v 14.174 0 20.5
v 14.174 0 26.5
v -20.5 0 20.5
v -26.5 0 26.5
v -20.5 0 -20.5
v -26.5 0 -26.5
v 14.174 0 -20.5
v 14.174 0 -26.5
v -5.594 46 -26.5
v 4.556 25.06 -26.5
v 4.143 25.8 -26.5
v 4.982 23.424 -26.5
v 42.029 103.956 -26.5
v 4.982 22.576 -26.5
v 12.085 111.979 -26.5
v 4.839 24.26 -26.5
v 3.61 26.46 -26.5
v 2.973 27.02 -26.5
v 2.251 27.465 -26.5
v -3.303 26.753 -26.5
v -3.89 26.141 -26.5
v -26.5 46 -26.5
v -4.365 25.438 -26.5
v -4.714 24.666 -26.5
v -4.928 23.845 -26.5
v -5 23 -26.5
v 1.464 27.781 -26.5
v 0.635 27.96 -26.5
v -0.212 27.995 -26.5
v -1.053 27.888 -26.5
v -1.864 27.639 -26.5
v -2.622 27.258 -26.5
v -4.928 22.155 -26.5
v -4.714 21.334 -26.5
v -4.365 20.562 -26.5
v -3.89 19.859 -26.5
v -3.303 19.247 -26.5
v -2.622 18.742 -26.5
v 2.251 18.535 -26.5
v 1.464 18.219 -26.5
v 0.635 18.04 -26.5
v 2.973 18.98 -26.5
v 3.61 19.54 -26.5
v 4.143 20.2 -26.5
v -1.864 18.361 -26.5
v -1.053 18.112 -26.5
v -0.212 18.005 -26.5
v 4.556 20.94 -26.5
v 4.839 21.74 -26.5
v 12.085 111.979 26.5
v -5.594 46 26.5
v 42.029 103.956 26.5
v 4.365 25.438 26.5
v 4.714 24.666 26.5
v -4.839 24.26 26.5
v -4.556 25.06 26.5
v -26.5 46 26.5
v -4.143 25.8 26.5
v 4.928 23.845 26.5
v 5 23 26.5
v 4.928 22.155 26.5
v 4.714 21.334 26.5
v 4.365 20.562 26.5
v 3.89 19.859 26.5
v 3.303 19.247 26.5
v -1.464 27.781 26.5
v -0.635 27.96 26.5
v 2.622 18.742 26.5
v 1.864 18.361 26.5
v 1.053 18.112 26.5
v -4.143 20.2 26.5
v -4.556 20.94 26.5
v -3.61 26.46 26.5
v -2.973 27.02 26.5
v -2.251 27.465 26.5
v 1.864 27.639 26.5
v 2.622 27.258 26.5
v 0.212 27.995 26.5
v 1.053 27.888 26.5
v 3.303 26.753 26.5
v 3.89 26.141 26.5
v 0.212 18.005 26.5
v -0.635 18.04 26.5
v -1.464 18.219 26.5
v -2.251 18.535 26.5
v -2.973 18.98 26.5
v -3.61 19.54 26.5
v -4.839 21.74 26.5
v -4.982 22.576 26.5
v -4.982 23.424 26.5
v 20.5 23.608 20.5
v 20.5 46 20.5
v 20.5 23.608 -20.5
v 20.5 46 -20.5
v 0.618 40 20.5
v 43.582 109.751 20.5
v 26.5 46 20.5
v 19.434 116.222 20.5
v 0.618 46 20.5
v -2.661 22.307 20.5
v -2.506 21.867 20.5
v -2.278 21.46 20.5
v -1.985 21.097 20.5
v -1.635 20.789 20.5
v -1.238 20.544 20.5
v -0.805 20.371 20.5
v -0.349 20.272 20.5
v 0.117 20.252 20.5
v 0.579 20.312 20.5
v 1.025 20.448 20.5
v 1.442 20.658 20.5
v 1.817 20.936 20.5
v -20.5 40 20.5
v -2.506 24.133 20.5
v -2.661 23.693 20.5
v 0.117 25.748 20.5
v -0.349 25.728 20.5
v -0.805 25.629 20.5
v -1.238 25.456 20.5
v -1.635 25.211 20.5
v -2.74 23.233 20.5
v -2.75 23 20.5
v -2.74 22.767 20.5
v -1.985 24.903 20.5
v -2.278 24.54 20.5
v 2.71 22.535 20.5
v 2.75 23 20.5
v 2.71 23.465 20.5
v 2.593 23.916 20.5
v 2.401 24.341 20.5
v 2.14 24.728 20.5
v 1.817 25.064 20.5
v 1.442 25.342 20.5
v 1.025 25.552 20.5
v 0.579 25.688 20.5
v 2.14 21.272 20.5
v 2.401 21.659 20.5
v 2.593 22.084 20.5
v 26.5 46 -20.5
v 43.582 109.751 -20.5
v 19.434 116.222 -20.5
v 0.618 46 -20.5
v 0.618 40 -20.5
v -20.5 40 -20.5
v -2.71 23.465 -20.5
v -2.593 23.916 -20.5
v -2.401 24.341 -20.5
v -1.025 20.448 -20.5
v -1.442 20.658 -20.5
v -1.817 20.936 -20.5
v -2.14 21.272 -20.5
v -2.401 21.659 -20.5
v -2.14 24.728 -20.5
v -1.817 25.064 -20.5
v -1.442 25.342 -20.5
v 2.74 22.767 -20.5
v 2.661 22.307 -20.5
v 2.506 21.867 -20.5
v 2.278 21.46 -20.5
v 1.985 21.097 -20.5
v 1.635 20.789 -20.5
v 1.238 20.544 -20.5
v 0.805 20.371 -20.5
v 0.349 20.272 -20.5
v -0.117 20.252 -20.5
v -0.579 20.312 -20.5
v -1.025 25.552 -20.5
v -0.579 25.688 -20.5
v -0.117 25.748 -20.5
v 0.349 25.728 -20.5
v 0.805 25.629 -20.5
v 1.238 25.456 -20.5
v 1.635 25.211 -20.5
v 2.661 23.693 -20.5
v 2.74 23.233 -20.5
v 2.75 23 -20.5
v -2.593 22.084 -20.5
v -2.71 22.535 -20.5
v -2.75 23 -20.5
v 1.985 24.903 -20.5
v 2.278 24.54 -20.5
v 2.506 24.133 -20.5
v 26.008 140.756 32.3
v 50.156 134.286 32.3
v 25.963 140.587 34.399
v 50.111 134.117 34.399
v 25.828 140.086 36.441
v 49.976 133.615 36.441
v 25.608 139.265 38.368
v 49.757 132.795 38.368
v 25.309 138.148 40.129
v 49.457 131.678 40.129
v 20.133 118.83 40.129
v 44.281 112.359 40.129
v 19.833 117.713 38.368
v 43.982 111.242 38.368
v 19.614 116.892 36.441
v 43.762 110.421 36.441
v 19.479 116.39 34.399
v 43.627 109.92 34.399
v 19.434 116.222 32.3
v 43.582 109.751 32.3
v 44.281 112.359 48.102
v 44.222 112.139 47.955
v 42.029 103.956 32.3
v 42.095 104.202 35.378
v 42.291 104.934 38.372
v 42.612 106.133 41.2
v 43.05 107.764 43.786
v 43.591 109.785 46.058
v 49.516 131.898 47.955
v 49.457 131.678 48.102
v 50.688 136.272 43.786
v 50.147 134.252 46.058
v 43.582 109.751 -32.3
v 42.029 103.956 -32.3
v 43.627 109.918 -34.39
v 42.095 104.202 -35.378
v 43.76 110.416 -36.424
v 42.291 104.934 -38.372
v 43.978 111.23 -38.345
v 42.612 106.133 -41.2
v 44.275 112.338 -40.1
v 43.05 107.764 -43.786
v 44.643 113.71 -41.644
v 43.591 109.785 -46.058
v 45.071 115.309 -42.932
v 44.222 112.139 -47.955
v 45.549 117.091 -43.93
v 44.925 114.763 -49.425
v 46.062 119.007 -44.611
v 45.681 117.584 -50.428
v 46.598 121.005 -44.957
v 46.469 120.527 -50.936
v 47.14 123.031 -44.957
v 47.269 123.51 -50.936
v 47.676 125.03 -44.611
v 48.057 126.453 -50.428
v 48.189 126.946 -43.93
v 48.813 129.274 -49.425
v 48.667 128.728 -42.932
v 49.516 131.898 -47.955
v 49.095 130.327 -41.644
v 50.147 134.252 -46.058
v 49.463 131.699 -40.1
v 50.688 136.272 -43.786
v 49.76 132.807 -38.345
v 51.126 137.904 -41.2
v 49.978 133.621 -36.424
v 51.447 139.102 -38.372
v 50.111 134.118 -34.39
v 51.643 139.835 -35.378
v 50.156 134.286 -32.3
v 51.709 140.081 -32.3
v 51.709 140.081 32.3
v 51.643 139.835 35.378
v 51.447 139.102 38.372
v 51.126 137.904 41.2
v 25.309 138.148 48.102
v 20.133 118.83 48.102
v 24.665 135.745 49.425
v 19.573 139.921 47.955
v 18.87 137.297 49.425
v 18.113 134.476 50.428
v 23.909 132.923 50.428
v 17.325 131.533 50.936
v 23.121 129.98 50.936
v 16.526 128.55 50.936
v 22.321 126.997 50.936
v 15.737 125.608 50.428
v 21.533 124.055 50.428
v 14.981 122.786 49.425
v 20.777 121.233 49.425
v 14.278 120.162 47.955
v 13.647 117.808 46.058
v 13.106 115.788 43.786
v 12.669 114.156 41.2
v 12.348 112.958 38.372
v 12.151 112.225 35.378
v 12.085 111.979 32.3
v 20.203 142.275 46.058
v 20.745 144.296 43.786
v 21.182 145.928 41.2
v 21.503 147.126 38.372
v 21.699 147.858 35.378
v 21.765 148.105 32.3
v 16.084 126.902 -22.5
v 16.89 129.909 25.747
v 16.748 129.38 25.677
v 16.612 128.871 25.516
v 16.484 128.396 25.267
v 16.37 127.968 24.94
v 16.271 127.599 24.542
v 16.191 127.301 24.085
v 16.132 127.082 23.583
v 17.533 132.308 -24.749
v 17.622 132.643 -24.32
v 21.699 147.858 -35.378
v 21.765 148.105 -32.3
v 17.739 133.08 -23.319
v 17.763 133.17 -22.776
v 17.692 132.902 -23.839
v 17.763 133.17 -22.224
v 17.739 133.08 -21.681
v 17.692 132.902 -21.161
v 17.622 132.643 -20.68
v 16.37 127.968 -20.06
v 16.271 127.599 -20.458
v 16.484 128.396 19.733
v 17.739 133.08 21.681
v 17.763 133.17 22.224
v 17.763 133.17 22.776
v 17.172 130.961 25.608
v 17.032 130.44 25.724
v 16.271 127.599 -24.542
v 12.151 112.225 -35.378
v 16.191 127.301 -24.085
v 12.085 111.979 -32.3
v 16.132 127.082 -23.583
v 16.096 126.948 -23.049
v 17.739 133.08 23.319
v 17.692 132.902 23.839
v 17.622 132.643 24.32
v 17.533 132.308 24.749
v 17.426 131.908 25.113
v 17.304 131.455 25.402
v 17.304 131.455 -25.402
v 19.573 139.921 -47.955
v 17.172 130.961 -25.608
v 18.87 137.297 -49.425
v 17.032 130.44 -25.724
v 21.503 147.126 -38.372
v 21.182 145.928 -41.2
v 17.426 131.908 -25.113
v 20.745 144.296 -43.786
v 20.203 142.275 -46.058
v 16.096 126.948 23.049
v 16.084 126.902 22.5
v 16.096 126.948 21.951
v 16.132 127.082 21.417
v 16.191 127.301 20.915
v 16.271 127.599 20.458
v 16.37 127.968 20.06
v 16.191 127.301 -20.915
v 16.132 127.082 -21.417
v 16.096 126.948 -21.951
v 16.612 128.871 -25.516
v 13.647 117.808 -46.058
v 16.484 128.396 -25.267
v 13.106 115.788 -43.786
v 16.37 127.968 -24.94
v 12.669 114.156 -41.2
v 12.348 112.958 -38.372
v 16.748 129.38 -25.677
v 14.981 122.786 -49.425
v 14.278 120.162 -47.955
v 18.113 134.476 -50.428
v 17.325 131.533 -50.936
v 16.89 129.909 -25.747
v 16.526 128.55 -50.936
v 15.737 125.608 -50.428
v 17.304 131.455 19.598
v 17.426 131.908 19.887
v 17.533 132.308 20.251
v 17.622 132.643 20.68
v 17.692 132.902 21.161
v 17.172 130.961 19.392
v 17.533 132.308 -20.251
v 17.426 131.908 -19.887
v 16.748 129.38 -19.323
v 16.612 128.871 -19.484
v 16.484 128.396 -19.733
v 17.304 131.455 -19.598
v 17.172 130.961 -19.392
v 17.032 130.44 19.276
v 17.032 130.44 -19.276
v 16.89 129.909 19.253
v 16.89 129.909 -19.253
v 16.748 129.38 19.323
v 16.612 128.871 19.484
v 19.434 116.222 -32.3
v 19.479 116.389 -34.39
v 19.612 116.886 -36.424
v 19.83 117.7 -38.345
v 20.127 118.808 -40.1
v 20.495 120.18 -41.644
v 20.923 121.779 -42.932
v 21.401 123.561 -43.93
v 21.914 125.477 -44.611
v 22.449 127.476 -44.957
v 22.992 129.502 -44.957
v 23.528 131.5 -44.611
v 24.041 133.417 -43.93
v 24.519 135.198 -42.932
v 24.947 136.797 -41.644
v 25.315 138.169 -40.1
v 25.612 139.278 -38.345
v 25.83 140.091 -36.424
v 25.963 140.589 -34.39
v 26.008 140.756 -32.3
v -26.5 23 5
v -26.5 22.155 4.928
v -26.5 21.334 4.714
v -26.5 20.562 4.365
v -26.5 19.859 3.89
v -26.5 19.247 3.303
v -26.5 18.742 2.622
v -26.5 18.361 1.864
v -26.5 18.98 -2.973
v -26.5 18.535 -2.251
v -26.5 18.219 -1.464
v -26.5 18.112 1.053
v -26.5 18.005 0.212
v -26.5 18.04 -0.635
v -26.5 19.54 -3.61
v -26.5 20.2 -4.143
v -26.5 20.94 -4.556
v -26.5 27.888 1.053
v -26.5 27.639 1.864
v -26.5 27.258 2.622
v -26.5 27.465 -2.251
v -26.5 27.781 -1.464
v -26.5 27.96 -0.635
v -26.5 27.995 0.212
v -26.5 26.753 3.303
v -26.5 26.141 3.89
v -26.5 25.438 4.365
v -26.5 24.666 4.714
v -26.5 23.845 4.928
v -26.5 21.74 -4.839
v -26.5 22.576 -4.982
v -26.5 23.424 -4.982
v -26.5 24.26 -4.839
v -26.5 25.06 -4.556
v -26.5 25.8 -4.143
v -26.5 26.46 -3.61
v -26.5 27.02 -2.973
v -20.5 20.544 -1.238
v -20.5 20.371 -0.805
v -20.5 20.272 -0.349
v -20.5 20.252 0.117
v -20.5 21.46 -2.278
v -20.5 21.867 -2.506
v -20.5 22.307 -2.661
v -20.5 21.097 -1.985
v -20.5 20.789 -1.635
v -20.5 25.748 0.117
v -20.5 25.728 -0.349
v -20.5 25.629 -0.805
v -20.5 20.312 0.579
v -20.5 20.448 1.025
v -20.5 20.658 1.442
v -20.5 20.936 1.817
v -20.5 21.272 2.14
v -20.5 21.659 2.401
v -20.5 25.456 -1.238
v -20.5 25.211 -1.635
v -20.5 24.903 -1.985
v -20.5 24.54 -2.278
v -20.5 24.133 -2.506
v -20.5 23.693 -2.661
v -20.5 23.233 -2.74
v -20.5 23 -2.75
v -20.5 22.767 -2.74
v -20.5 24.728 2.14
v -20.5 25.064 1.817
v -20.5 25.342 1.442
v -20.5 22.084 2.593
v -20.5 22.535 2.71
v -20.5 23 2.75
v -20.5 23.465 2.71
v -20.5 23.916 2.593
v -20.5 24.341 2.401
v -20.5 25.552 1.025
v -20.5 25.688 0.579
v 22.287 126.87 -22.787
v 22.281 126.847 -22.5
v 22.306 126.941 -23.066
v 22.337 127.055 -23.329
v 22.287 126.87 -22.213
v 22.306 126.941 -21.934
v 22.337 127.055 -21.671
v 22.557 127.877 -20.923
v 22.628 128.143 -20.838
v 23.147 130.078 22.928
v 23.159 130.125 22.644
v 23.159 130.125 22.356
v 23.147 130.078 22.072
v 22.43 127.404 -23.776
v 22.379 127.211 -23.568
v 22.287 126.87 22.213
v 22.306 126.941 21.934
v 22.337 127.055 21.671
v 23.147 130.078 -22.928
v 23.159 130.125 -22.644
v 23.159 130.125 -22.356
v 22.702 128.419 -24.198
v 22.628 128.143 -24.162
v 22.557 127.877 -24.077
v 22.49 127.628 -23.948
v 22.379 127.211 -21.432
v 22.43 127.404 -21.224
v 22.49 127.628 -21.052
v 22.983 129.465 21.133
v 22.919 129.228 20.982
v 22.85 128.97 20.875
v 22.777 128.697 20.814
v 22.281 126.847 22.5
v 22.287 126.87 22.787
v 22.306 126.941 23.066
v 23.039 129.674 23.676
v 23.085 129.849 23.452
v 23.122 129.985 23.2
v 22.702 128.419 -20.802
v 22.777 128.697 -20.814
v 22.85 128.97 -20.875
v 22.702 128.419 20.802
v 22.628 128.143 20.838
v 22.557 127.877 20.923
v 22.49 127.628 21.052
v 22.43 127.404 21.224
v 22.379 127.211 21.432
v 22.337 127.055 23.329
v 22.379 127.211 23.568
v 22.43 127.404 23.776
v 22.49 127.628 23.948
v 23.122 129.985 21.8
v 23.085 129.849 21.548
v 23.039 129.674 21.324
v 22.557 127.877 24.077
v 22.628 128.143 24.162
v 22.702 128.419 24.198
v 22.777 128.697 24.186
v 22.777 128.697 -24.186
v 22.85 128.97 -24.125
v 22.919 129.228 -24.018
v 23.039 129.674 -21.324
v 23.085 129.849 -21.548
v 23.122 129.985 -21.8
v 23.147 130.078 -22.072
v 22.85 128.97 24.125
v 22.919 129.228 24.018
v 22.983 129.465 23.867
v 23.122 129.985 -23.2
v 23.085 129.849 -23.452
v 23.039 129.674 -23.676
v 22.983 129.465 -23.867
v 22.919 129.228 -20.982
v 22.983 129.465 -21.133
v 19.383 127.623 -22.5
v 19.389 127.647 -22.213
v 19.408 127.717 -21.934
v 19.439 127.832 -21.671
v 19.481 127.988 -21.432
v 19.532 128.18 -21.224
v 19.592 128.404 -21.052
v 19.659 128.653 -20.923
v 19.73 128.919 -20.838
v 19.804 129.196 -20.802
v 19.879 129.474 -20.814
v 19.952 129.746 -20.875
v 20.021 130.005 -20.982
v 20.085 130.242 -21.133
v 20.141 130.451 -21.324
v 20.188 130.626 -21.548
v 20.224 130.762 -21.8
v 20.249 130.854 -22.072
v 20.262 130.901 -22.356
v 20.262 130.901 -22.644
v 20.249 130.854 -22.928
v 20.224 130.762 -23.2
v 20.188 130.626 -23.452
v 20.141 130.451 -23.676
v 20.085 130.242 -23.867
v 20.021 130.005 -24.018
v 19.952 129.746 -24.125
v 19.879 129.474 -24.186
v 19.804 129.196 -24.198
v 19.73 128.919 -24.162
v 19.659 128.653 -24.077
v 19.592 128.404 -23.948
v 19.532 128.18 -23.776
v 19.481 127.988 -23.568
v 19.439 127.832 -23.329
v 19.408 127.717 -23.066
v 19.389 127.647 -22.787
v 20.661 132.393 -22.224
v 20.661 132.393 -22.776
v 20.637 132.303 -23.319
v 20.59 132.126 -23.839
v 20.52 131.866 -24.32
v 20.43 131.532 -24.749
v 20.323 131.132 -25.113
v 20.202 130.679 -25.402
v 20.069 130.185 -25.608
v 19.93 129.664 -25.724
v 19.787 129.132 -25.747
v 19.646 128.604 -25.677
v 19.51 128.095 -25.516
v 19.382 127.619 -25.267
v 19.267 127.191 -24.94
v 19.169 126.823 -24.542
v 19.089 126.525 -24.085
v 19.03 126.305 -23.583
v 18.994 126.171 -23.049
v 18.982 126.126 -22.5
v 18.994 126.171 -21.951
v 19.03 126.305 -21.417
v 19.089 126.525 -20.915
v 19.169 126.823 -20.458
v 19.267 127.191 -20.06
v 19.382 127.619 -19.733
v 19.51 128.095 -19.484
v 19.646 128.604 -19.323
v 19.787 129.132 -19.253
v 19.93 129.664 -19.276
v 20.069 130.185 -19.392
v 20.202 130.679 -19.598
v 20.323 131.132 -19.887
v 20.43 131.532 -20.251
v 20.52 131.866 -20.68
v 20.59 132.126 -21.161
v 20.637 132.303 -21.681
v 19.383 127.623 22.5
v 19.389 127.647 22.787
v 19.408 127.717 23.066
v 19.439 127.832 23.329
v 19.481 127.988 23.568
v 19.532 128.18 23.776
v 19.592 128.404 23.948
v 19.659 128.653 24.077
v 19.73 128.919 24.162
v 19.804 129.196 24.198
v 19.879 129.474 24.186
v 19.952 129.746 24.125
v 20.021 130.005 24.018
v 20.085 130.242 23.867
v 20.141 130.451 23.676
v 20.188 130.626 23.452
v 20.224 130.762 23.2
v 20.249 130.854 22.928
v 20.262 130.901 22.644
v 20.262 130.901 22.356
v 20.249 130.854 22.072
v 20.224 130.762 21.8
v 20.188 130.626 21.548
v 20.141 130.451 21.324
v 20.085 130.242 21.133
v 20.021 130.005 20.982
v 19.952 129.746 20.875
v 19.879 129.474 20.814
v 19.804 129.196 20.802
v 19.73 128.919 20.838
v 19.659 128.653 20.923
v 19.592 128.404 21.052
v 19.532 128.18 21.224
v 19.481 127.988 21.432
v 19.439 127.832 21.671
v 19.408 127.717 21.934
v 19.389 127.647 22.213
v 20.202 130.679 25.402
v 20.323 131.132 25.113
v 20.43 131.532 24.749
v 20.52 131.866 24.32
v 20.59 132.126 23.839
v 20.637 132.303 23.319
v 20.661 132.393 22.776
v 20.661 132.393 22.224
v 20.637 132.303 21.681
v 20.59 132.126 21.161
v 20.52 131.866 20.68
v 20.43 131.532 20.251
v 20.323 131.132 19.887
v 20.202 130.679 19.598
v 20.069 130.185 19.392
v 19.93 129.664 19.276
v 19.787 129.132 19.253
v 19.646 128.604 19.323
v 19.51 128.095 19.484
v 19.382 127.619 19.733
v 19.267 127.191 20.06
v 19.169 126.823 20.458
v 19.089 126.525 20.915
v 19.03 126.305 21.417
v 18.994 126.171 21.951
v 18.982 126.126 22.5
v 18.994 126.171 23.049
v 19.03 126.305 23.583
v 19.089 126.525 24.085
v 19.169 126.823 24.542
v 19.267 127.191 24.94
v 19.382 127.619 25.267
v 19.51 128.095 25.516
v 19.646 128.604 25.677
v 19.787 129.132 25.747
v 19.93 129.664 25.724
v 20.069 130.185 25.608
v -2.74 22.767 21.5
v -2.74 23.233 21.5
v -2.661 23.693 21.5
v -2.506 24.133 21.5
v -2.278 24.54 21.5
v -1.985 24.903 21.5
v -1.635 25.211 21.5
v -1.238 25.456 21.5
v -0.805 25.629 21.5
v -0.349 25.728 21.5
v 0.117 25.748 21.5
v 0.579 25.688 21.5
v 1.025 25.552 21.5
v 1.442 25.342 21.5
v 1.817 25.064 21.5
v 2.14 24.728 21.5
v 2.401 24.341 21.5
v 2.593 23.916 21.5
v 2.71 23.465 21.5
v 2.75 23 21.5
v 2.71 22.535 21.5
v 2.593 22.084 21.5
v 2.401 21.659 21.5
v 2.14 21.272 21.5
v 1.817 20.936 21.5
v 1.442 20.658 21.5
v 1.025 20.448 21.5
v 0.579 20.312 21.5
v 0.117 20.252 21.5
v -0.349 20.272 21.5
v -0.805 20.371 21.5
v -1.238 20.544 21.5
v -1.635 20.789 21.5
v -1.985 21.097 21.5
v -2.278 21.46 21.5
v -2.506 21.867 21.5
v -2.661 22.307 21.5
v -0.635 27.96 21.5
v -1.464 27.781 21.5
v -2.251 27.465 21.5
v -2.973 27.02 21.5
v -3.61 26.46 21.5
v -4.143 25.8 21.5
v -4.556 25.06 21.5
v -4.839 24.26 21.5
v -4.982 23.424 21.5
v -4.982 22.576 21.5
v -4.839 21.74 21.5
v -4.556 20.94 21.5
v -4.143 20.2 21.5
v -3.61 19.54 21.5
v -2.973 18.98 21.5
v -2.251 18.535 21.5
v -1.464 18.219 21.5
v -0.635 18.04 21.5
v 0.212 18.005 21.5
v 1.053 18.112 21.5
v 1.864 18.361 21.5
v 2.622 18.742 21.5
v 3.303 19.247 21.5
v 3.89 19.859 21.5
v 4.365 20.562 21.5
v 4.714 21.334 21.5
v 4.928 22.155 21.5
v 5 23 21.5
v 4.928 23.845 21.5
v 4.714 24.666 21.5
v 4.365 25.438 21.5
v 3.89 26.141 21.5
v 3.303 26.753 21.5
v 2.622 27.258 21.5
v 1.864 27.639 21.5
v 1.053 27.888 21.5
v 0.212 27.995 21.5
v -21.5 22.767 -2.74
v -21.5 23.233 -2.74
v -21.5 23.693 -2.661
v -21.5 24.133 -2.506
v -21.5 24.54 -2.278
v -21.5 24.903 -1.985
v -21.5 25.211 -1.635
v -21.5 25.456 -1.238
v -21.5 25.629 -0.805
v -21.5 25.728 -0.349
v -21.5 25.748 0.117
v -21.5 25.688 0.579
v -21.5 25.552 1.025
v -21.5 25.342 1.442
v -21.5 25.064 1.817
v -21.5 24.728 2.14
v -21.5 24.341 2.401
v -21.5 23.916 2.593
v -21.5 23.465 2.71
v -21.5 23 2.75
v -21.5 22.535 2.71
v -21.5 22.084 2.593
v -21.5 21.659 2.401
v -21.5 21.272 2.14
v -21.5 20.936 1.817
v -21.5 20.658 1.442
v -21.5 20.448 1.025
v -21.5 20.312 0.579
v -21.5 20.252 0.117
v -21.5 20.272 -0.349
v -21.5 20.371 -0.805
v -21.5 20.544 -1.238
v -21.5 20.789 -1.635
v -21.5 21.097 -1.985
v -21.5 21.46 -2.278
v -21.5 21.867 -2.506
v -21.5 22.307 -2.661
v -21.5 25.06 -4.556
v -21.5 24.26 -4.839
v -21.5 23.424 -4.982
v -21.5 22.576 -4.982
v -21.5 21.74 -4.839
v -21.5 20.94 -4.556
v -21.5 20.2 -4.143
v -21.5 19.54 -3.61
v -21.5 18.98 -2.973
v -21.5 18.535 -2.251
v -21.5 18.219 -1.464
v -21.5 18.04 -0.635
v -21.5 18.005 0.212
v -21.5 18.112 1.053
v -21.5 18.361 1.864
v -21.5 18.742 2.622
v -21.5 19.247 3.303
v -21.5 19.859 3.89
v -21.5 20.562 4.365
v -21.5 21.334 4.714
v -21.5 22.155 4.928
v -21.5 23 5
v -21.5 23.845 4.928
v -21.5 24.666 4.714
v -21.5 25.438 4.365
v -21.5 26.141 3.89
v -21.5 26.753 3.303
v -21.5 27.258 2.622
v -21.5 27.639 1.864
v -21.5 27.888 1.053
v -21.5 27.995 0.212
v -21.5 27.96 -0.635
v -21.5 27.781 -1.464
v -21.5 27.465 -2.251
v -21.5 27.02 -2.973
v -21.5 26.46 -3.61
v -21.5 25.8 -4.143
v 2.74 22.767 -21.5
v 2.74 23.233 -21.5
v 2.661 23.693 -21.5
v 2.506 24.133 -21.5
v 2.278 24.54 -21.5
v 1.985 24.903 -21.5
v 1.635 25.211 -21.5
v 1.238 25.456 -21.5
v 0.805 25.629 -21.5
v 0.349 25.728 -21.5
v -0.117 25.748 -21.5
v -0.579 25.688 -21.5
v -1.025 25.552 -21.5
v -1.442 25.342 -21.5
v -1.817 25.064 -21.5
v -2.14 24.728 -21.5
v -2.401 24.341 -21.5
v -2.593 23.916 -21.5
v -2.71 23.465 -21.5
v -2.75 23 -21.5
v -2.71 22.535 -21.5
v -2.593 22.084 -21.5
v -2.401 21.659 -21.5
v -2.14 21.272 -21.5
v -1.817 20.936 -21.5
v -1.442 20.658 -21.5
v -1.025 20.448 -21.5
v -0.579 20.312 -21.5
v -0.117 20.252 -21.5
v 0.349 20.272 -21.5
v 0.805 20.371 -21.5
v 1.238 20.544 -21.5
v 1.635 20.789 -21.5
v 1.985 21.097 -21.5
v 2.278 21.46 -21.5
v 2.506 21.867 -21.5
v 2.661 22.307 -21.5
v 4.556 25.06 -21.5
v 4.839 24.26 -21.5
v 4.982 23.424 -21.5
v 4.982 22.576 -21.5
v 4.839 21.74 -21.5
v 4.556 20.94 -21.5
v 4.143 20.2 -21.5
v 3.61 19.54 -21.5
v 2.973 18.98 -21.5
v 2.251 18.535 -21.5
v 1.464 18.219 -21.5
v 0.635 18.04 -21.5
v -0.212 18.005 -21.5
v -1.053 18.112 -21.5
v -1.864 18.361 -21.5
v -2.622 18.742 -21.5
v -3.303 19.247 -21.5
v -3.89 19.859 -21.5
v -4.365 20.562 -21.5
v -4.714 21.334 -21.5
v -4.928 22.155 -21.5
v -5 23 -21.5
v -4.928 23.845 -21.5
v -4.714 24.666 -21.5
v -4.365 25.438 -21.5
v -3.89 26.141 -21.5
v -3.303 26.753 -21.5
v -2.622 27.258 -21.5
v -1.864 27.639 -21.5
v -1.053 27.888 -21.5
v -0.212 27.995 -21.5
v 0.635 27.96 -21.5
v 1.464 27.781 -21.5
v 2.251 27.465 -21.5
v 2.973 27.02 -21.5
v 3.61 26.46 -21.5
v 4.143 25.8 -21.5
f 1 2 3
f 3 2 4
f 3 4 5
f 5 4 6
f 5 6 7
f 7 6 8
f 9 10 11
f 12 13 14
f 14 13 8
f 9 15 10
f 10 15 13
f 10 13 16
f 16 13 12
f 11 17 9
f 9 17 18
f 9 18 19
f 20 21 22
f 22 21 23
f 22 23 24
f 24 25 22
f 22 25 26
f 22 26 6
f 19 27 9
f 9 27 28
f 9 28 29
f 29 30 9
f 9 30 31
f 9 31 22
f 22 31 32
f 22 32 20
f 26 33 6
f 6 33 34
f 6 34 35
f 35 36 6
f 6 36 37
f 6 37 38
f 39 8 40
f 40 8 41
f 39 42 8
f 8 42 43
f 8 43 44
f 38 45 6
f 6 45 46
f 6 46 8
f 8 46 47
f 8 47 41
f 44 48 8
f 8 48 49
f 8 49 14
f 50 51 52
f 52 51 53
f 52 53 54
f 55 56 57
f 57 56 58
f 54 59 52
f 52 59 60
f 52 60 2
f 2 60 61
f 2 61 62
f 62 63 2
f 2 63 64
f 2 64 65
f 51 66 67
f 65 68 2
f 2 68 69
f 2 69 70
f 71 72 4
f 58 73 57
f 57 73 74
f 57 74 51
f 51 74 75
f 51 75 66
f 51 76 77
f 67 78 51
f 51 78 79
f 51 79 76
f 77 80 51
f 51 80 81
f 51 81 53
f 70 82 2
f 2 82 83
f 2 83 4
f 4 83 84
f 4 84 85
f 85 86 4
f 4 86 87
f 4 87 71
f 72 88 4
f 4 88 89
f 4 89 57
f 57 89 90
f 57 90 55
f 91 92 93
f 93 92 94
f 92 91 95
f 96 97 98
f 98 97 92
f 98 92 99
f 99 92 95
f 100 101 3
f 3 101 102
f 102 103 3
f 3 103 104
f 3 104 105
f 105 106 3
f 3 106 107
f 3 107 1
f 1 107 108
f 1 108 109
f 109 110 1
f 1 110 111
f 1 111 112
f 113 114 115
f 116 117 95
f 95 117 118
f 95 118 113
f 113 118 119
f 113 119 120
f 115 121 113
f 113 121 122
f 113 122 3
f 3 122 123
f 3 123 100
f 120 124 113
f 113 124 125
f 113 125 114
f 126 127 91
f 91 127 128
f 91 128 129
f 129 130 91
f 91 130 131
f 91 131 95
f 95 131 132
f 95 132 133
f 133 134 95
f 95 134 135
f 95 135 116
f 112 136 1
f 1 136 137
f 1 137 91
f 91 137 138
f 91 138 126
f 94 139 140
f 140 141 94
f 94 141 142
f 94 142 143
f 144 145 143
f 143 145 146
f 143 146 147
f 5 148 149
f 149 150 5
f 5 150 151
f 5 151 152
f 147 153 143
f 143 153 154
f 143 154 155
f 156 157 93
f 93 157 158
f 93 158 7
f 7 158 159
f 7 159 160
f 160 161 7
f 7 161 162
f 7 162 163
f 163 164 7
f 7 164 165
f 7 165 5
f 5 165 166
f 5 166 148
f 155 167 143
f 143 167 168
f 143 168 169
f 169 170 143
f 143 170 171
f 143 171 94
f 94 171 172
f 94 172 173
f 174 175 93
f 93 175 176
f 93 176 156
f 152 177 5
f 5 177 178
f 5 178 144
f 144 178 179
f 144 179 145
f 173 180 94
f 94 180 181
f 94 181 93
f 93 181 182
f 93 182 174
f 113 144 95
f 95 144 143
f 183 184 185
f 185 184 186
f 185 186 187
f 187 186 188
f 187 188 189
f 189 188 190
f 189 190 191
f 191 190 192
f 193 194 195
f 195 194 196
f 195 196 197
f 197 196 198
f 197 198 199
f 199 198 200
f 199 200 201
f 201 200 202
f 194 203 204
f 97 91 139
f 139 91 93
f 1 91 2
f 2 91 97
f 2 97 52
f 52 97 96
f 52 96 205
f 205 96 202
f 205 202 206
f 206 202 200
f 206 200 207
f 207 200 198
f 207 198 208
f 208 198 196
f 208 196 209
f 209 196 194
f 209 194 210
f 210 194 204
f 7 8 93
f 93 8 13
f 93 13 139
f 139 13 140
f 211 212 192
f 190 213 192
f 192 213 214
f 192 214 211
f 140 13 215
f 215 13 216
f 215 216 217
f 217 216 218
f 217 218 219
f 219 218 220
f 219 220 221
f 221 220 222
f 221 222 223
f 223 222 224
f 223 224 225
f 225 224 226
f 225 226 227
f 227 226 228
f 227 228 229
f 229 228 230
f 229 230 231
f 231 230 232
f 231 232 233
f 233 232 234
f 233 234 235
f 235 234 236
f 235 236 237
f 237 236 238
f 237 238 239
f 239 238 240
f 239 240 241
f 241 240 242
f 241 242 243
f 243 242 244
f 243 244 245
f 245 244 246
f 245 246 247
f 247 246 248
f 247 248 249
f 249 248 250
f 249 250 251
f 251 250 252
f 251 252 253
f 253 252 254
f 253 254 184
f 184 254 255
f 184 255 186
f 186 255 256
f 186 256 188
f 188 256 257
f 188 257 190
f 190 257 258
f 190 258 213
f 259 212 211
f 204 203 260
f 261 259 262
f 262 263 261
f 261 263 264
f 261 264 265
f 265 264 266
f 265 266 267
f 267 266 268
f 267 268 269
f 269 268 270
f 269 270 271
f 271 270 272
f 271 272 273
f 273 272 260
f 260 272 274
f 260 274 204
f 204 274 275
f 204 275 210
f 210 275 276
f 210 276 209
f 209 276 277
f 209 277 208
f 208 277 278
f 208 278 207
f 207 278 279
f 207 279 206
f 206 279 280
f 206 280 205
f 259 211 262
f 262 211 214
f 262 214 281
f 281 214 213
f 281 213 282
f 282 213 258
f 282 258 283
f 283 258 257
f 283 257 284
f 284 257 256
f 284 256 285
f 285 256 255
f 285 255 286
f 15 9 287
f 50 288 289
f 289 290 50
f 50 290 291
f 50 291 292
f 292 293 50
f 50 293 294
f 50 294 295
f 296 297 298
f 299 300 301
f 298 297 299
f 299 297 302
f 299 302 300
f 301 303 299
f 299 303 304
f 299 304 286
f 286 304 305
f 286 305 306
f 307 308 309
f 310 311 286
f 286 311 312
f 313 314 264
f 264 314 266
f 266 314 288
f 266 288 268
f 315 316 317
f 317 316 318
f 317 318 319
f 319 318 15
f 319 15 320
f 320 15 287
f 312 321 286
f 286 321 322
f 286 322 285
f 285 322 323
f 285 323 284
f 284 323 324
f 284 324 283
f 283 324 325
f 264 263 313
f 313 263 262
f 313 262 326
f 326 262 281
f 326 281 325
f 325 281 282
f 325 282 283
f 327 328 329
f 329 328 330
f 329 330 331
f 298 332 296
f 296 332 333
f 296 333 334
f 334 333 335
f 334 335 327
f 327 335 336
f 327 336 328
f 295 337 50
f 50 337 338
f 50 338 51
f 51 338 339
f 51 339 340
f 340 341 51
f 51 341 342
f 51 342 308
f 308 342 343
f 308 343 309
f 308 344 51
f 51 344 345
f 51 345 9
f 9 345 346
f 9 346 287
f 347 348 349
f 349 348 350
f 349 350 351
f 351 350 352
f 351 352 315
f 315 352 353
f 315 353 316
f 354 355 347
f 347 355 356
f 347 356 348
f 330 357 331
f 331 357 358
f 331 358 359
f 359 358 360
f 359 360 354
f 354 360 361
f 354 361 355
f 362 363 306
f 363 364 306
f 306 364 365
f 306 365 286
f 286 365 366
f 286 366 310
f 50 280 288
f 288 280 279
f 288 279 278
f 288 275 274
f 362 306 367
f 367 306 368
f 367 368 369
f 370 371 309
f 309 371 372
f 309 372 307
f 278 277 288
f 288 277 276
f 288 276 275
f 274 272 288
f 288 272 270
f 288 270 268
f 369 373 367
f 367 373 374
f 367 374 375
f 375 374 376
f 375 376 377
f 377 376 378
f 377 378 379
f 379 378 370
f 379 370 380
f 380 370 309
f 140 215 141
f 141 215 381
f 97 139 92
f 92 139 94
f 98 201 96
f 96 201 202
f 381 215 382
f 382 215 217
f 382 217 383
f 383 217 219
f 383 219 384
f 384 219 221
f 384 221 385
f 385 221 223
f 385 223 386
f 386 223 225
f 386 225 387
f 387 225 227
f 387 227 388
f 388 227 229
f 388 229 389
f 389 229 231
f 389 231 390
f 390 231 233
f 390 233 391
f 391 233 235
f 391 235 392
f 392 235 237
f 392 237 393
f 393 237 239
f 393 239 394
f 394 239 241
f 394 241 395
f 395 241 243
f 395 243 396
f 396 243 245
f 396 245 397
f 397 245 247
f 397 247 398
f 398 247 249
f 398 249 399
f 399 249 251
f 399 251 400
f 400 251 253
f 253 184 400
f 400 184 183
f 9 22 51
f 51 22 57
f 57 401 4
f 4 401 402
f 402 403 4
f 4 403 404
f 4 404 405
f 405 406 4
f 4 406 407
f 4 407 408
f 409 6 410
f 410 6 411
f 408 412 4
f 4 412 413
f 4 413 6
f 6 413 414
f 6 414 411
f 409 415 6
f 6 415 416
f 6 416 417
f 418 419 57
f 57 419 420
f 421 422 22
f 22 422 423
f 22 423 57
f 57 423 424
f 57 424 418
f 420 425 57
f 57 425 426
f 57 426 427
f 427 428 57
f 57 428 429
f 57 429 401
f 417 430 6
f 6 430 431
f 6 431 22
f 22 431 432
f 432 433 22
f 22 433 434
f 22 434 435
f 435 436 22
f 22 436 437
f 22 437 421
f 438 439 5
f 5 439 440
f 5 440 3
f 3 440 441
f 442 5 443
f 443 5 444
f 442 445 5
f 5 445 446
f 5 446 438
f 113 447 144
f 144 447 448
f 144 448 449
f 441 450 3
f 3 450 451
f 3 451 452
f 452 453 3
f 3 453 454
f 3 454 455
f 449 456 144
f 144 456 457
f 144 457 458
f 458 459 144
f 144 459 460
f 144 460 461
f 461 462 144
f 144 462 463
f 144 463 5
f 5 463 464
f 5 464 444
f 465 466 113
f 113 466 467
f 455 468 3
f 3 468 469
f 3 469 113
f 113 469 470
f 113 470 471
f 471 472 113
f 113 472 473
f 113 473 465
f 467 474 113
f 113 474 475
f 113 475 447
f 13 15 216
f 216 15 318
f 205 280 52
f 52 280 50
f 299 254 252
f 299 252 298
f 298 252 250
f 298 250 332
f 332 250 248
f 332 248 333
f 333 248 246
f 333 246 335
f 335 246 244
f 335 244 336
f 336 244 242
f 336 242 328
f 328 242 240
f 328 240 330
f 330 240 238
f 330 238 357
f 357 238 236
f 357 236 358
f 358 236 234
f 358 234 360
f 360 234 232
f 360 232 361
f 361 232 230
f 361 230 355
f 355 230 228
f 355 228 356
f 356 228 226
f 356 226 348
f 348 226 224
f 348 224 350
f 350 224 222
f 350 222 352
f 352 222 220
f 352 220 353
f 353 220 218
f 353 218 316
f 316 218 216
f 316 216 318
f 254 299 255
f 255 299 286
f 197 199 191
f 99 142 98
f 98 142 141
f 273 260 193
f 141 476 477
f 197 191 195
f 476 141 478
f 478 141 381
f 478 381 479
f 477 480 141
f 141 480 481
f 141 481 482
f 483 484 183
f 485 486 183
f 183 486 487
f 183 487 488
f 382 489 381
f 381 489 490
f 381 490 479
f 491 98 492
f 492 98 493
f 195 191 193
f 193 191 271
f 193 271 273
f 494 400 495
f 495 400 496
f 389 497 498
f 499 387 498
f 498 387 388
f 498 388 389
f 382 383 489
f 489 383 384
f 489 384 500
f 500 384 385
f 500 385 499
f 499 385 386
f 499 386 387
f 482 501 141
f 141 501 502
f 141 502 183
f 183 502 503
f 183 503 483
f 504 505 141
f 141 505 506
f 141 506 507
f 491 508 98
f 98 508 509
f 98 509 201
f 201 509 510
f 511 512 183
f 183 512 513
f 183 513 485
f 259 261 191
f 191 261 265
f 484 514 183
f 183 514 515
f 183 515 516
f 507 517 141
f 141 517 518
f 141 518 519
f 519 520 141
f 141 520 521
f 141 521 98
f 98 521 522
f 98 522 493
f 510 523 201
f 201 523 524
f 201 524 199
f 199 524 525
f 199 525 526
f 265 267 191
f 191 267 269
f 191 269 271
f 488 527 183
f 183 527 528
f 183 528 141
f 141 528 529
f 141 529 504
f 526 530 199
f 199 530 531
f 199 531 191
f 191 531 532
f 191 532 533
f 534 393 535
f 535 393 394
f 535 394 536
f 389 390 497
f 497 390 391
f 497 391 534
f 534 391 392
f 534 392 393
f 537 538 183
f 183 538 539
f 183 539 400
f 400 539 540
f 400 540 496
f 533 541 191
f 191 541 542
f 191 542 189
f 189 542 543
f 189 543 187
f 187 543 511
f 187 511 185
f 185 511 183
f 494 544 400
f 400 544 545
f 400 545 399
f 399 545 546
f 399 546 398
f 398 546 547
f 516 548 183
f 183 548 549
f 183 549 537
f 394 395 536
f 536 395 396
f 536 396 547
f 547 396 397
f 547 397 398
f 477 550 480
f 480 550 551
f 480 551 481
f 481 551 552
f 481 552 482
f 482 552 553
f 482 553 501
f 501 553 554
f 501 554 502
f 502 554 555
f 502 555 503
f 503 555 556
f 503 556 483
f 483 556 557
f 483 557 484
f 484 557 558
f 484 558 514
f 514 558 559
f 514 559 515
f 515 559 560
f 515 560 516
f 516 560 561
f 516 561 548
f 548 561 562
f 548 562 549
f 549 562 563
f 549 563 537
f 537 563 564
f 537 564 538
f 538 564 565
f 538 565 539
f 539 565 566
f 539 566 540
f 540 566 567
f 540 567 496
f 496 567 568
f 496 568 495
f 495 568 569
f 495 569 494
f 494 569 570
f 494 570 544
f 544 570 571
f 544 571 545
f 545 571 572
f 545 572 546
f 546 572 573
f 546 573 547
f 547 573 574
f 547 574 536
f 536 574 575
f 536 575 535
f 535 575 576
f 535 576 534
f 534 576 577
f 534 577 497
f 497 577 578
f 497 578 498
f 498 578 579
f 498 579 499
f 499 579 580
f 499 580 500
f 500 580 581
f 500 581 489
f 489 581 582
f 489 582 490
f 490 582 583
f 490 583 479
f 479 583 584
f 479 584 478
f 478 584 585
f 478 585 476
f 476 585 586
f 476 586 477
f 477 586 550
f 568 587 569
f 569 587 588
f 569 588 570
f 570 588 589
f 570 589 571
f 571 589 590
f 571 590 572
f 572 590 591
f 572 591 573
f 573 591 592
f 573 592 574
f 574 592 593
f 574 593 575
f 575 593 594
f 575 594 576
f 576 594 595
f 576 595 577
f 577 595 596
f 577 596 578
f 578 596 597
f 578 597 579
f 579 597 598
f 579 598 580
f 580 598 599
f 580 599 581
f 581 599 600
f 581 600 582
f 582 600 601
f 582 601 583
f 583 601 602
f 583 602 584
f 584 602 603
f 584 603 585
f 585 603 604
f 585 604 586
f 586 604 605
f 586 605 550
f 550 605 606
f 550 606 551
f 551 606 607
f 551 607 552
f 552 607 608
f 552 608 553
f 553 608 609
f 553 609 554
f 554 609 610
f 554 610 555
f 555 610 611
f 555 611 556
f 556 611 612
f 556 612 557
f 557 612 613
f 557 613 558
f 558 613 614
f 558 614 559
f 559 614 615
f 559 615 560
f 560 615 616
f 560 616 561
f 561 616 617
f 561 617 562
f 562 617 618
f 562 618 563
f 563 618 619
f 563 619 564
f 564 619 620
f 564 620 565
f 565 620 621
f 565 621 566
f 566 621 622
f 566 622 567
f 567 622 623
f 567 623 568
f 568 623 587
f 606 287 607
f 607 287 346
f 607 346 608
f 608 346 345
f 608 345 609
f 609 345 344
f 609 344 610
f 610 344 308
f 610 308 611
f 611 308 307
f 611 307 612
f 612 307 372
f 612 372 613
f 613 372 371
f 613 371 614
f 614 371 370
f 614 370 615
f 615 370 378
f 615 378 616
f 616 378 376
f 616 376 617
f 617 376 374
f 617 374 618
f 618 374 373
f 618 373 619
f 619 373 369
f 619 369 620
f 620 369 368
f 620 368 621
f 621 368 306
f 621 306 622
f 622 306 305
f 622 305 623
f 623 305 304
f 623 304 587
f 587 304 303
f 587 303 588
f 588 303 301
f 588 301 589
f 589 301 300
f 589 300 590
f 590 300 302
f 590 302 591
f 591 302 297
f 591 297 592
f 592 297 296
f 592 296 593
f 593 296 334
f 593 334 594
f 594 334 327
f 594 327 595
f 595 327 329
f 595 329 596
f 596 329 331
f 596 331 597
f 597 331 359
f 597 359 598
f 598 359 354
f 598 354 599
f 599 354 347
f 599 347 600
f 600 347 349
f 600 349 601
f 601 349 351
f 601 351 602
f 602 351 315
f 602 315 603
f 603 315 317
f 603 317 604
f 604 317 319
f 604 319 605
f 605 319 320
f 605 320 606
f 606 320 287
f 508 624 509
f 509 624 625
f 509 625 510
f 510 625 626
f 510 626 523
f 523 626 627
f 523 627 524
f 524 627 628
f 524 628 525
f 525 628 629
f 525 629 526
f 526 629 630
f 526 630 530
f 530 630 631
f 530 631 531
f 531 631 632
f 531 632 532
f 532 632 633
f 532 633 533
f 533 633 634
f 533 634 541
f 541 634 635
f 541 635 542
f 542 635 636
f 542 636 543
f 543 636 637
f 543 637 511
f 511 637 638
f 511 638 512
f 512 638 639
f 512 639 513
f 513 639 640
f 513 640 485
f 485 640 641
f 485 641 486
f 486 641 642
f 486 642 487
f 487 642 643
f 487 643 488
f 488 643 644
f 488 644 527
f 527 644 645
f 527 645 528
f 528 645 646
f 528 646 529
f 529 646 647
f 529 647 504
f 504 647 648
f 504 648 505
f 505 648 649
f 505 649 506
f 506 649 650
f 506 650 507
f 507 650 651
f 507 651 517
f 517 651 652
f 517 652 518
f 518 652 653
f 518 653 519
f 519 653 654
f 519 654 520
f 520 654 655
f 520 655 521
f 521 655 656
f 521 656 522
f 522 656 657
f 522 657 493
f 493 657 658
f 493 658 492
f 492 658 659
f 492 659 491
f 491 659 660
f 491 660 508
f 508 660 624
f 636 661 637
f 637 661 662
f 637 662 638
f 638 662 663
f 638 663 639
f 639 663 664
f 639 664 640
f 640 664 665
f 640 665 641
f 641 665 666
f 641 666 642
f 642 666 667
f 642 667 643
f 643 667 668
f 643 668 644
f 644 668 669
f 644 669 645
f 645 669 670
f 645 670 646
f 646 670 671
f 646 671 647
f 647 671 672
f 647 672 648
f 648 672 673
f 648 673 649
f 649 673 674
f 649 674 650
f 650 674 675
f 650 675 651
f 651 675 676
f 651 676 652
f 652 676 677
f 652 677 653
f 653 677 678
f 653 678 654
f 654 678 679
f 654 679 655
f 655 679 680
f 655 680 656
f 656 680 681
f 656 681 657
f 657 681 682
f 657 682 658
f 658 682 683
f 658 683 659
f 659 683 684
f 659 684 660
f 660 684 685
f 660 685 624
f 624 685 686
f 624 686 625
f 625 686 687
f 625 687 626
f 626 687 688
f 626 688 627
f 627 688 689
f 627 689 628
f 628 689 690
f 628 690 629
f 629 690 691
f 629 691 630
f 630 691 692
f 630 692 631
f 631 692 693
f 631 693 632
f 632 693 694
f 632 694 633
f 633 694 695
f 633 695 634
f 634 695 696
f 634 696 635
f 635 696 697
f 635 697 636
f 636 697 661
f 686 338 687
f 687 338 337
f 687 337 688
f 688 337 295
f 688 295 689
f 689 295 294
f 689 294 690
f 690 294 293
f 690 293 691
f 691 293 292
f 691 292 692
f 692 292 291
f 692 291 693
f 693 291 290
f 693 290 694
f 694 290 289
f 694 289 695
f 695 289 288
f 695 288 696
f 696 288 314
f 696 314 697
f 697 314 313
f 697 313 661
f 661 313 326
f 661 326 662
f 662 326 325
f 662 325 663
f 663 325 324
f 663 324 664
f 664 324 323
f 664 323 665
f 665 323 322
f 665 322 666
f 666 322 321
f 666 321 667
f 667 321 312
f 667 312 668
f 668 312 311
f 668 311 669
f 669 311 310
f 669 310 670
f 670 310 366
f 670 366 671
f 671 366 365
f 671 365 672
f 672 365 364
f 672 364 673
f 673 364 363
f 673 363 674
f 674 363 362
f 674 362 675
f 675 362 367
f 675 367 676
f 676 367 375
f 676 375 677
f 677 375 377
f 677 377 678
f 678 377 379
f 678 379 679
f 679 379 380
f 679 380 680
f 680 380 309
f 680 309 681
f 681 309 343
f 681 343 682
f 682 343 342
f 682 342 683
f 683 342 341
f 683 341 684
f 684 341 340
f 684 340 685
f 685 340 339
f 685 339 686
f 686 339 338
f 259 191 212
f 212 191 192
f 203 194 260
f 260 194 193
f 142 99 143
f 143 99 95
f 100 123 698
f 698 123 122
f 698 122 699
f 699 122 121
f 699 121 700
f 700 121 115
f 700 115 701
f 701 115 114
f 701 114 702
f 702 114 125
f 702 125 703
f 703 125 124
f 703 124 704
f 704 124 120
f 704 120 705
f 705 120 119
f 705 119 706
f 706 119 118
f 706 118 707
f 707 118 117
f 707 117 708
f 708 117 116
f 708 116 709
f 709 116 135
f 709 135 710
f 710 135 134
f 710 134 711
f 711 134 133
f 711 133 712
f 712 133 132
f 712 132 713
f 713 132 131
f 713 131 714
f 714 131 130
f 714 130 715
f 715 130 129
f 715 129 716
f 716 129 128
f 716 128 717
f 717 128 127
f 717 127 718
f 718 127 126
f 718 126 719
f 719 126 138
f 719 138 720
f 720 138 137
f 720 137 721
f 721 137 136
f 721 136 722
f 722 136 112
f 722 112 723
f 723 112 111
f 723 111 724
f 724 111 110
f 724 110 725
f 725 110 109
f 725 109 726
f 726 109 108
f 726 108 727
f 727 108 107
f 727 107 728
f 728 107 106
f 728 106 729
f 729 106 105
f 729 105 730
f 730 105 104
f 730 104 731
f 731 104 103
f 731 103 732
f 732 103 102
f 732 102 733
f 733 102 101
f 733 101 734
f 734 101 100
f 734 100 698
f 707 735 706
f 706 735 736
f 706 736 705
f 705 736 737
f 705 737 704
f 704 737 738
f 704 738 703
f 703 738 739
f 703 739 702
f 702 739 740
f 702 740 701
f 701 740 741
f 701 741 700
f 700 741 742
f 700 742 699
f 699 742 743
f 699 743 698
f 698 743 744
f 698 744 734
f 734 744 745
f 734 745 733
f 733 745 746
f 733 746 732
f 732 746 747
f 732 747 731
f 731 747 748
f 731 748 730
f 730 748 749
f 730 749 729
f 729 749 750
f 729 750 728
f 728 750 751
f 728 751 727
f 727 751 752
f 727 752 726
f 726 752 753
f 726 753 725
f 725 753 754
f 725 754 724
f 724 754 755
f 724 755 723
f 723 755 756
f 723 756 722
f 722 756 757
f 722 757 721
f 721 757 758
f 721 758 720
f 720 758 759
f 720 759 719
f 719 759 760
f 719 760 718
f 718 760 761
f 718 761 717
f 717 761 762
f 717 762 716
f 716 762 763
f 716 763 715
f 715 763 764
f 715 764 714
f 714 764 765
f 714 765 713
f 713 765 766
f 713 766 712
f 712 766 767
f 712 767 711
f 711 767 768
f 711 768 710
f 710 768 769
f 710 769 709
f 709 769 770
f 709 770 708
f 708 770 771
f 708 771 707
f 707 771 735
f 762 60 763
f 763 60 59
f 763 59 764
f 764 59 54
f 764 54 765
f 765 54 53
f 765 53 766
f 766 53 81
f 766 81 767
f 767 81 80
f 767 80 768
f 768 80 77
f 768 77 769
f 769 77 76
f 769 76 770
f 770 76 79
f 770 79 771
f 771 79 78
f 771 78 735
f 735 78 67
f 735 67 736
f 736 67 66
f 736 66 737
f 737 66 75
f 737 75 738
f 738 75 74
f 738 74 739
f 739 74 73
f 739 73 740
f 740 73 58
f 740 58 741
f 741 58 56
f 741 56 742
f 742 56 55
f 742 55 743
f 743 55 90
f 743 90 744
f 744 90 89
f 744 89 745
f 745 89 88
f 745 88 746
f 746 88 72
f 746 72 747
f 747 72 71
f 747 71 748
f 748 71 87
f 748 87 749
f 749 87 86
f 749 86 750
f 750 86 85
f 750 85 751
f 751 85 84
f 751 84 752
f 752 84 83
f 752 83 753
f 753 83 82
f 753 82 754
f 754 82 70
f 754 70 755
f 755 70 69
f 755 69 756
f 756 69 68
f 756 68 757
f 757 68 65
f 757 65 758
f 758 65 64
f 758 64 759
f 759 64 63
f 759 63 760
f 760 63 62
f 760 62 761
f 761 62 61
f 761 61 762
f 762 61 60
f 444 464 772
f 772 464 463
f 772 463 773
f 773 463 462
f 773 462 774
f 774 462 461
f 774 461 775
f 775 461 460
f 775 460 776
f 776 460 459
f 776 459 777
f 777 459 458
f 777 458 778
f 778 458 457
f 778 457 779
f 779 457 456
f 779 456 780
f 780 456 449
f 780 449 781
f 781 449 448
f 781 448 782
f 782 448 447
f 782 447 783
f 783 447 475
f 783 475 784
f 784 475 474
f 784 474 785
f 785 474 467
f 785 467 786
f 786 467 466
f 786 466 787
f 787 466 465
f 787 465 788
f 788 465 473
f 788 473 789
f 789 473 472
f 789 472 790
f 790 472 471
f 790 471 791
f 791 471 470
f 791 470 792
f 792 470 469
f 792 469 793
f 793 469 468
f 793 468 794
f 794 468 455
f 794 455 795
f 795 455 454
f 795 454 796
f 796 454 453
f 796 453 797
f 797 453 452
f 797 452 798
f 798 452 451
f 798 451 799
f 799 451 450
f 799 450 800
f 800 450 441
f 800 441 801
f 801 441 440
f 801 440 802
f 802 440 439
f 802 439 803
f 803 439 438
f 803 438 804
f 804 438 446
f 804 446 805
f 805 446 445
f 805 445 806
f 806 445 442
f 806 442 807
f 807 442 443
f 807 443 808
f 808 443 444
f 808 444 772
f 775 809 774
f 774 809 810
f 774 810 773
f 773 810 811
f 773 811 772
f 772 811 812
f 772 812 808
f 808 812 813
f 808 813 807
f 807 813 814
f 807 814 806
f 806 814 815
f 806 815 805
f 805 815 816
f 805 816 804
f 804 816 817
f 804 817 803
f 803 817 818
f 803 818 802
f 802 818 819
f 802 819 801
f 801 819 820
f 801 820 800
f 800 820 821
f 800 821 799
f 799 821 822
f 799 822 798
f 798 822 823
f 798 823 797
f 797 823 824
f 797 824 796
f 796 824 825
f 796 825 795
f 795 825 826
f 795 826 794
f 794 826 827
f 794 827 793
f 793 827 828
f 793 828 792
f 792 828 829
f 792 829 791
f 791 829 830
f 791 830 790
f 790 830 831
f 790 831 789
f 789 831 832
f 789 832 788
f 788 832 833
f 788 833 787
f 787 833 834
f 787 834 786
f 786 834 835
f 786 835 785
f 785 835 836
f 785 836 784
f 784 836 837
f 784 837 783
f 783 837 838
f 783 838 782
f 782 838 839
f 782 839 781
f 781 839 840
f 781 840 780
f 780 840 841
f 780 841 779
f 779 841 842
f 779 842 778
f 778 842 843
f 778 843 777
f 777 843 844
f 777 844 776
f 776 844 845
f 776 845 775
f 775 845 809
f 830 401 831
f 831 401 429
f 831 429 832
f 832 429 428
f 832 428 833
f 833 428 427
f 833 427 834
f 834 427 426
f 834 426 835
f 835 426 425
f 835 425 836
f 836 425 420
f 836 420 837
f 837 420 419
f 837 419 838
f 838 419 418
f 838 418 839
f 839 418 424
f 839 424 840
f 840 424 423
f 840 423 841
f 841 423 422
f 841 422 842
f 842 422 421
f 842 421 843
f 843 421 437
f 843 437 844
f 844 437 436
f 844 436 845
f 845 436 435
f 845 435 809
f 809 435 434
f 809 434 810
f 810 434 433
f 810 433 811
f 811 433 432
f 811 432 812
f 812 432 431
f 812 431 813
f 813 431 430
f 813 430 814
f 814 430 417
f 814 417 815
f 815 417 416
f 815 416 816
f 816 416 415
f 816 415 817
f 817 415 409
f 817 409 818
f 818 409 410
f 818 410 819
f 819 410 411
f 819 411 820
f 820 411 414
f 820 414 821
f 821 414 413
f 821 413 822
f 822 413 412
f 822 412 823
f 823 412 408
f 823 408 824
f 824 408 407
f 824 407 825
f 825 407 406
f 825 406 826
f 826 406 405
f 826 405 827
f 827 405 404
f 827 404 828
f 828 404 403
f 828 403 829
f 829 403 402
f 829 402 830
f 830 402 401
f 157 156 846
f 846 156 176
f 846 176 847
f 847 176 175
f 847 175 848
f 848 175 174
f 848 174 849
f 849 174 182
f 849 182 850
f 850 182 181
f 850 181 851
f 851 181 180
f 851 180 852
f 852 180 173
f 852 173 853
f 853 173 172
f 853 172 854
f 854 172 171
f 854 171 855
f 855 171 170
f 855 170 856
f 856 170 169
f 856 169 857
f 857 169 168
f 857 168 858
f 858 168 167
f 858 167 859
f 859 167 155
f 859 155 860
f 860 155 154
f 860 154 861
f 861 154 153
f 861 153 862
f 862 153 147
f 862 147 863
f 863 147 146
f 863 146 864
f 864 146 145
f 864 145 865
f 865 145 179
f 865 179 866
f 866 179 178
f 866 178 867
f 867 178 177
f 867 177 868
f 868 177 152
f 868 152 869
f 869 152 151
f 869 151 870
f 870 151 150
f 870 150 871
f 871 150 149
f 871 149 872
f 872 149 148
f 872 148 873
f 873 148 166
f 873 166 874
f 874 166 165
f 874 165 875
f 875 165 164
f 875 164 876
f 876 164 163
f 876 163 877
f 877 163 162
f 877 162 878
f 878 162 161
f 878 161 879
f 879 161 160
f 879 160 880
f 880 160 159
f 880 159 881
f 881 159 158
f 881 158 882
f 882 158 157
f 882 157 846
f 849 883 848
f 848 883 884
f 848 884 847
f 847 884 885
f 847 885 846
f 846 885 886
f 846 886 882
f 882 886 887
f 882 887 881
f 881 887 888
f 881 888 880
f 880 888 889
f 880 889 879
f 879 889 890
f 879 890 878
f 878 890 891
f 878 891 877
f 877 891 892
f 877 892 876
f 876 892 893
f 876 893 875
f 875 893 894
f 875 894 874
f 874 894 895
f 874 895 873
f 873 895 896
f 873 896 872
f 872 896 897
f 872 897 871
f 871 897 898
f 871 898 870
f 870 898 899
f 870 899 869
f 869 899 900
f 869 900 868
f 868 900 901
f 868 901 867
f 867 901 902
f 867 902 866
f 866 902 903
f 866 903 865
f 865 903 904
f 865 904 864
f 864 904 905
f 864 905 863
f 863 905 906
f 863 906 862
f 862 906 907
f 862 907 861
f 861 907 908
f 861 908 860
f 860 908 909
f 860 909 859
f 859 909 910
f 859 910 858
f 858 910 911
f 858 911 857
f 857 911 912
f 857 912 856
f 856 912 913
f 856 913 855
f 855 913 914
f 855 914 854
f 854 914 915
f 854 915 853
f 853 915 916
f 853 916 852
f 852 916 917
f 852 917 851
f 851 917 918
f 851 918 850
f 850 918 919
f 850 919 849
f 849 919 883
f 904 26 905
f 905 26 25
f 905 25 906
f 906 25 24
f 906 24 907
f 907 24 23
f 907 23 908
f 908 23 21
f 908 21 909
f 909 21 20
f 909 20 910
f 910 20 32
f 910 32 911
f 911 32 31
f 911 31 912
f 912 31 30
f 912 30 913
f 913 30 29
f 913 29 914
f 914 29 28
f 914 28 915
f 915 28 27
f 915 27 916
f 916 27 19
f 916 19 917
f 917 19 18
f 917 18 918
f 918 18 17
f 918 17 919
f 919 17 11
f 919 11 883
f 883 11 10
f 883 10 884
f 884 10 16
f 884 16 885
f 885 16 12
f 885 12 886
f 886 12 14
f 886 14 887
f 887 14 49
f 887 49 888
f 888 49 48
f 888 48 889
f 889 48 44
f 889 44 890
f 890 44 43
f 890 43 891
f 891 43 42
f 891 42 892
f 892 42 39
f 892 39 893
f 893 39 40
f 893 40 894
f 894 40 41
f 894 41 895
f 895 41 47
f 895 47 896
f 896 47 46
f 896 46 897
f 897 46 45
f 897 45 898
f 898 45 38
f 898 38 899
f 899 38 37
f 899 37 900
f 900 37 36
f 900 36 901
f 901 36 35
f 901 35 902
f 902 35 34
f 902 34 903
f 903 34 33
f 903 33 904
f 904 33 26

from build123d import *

# Parameters (mm, degrees)
SKETCH1_W                                = 53
SKETCH1_H                                = 53
SKETCH1_W_2                              = 41
SKETCH1_H_2                              = 41
BOSS_EXTRUDE1_DEPTH                      = 40
SKETCH2_W                                = 53
SKETCH2_H                                = 53
BOSS_EXTRUDE2_DEPTH                      = 6
SKETCH3_W                                = 53
SKETCH3_H                                = 80
SKETCH3_W_2                              = 41
SKETCH3_H_2                              = 68
BOSS_EXTRUDE3_DEPTH                      = 31
BOSS_EXTRUDE4_DEPTH                      = 31
BOSS_EXTRUDE5_START                      = -6
BOSS_EXTRUDE5_DEPTH                      = 6
SKETCH6_W                                = 41
SKETCH6_H                                = 12
CUT_EXTRUDE1_DEPTH                       = 25
CBORE_FOR_M3_SHCS2_D                     = 3.4
CBORE_FOR_M3_SHCS2_CBORE_D               = 6.5
CBORE_FOR_M3_SHCS2_CBORE_DEPTH           = 3
CUT_EXTRUDE2_REACH                       = 166.954
SKETCH14_W                               = 41
SKETCH14_H                               = 41
CUT_EXTRUDE3_DEPTH                       = 40
CUT_EXTRUDE4_REACH                       = 127.3
SKETCH15_W                               = 19.88190451
SKETCH15_H                               = 41
CBORE_FOR_M5_SHCS1_D                     = 5.5
CBORE_FOR_M5_SHCS1_DEPTH                 = 6
CBORE_FOR_M5_SHCS1_CBORE_D               = 10
CBORE_FOR_M5_SHCS1_CBORE_DEPTH           = 5
CBORE_FOR_M5_SHCS1_ON_FACE_2_D           = 5.5
CBORE_FOR_M5_SHCS1_ON_FACE_2_DEPTH       = 6
CBORE_FOR_M5_SHCS1_ON_FACE_2_CBORE_D     = 10
CBORE_FOR_M5_SHCS1_ON_FACE_2_CBORE_DEPTH = 5
CBORE_FOR_M5_SHCS1_ON_FACE_3_D           = 5.5
CBORE_FOR_M5_SHCS1_ON_FACE_3_DEPTH       = 6
CBORE_FOR_M5_SHCS1_ON_FACE_3_CBORE_D     = 10
CBORE_FOR_M5_SHCS1_ON_FACE_3_CBORE_DEPTH = 5
CUT_EXTRUDE5_START                       = -26.5
CUT_EXTRUDE5_DEPTH                       = 53


with BuildPart() as part:
    # Sketch1 → Boss-Extrude1 (new body)
    with BuildSketch(Plane(origin=(0, 0, 0), x_dir=(1, 0, 0), z_dir=(0, 1, 0))):
        Rectangle(SKETCH1_W, SKETCH1_H)
        Rectangle(SKETCH1_W_2, SKETCH1_H_2, mode=Mode.SUBTRACT)
    extrude(amount=BOSS_EXTRUDE1_DEPTH)

    # Sketch2 → Boss-Extrude2 (add)
    with BuildSketch(Plane(origin=(0, 40, 0), x_dir=(1, 0, 0), z_dir=(0, 1, 0))):
        Rectangle(SKETCH2_W, SKETCH2_H)
    extrude(amount=BOSS_EXTRUDE2_DEPTH)

    # Sketch3 → Boss-Extrude3 (add)
    with BuildSketch(Plane(origin=(13.2248366, -3.543584287, 0), x_dir=(0, 0, -1), z_dir=(-0.9659258262890681, 0.25881904510252135, 0))):
        with Locations((0, -71.291292705)):
            Rectangle(SKETCH3_W, SKETCH3_H)
        with Locations((0, -71.291292705)):
            Rectangle(SKETCH3_W_2, SKETCH3_H_2, mode=Mode.SUBTRACT)
    extrude(amount=BOSS_EXTRUDE3_DEPTH)

    # Sketch4 → Boss-Extrude4 (add)
    with BuildSketch(Plane(origin=(13.2248366, -3.543584287, 0), x_dir=(0, 0, -1), z_dir=(0.9659258262890681, -0.25881904510252135, 0))):
        with BuildLine():
            Line((-32.3, 148.691292705), (32.3, 148.691292705))
            ThreePointArc((32.3, 148.691292705), (51, 129.991292705), (32.3, 111.291292705))
            Line((32.3, 111.291292705), (-32.3, 111.291292705))
            ThreePointArc((-32.3, 111.291292705), (-51, 129.991292705), (-32.3, 148.691292705))
        make_face()
        with BuildLine():
            Line((-32.3, 142.691292705), (32.3, 142.691292705))
            ThreePointArc((32.3, 142.691292705), (45, 129.991292705), (32.3, 117.291292705))
            Line((32.3, 117.291292705), (-32.3, 117.291292705))
            ThreePointArc((-32.3, 117.291292705), (-45, 129.991292705), (-32.3, 142.691292705))
        make_face(mode=Mode.SUBTRACT)
    extrude(amount=-BOSS_EXTRUDE4_DEPTH)

    # Sketch5 → Boss-Extrude5 (add)
    with BuildSketch(Plane(origin=(-16.718864015, 4.479806111, 0), x_dir=(0, 0, 1), z_dir=(-0.9659258262890681, 0.25881904510252135, 0)).offset(BOSS_EXTRUDE5_START)):
        with BuildLine():
            Line((-20.5, 42.984867739), (20.5, 42.984867739))
            Line((20.5, 42.984867739), (26.5, 42.984867739))
            Line((26.5, 42.984867739), (26.5, 111.291292705))
            Line((26.5, 111.291292705), (32.3, 111.291292705))
            ThreePointArc((32.3, 111.291292705), (51, 129.991292705), (32.3, 148.691292705))
            Line((32.3, 148.691292705), (-32.3, 148.691292705))
            ThreePointArc((-32.3, 148.691292705), (-51, 129.991292705), (-32.3, 111.291292705))
            Line((-32.3, 111.291292705), (-26.5, 111.291292705))
            Line((-26.5, 111.291292705), (-26.5, 42.984867739))
            Line((-26.5, 42.984867739), (-20.5, 42.984867739))
        make_face()
    extrude(amount=BOSS_EXTRUDE5_DEPTH)

    # Sketch6 → Cut-Extrude1 (cut)
    with BuildSketch(Plane(origin=(13.2248366, -3.543584287, 0), x_dir=(0, 0, -1), z_dir=(0.9659258262890681, -0.25881904510252135, 0))):
        with Locations((0, 111.291292705)):
            Rectangle(SKETCH6_W, SKETCH6_H)
    extrude(amount=-CUT_EXTRUDE1_DEPTH, mode=Mode.SUBTRACT)

    # CBORE for M3 SHCS2 (through all)
    with Locations(Plane(origin=(-16.718864015, 4.479806111, 0), x_dir=(0, 0, 1), z_dir=(-0.9659258262890681, 0.25881904510252135, 0))):
        with Locations((22.5, 129.991292705), (-22.5, 129.991292705)):
            CounterBoreHole(CBORE_FOR_M3_SHCS2_D / 2, CBORE_FOR_M3_SHCS2_CBORE_D / 2, CBORE_FOR_M3_SHCS2_CBORE_DEPTH)

    # Sketch13 → Cut-Extrude2 (cut, up to next)
    with BuildSketch(Plane.XY, mode=Mode.PRIVATE) as cut_extrude2_sk1:
        Polygon((49.457249301, 131.677620792), (44.280868399, 112.359104266), (20.132722741, 118.829580394), (25.309103643, 138.148096919), align=None)
    cut_extrude2_tool1 = extrude(cut_extrude2_sk1.sketch, amount=CUT_EXTRUDE2_REACH, mode=Mode.PRIVATE) & part.part
    add(cut_extrude2_tool1.solids().sort_by_distance((34.794986, 125.253601, 0))[0], mode=Mode.SUBTRACT)

    # Sketch14 → Cut-Extrude3 (cut)
    with BuildSketch(Plane.XZ):
        Rectangle(SKETCH14_W, SKETCH14_H)
    extrude(amount=-CUT_EXTRUDE3_DEPTH, mode=Mode.SUBTRACT)

    # Sketch15 → Cut-Extrude4 (cut, up to next)
    with BuildSketch(Plane(origin=(0, 46, 0), x_dir=(1, 0, 0), z_dir=(0, 1, 0)), mode=Mode.PRIVATE) as cut_extrude4_sk1:
        with Locations((10.559047745, 0)):
            Rectangle(SKETCH15_W, SKETCH15_H)
    cut_extrude4_tool1 = extrude(cut_extrude4_sk1.sketch, amount=-CUT_EXTRUDE4_REACH, mode=Mode.PRIVATE) & part.part
    add(cut_extrude4_tool1.solids().sort_by_distance((10.559048, 46, 0))[0], mode=Mode.SUBTRACT)

    # CBORE for M5 SHCS1
    with Locations(Plane(origin=(0, 23, -26.5), x_dir=(-1, 0, 0), z_dir=(0, 0, -1))):
        with Locations((0, 0)):
            CounterBoreHole(CBORE_FOR_M5_SHCS1_D / 2, CBORE_FOR_M5_SHCS1_CBORE_D / 2, CBORE_FOR_M5_SHCS1_CBORE_DEPTH, depth=CBORE_FOR_M5_SHCS1_DEPTH)

    # CBORE for M5 SHCS1 on face 2
    with Locations(Plane(origin=(-26.5, 23, 0), x_dir=(0, 0, -1), z_dir=(-1, 0, 0))):
        with Locations((0, 0)):
            CounterBoreHole(CBORE_FOR_M5_SHCS1_ON_FACE_2_D / 2, CBORE_FOR_M5_SHCS1_ON_FACE_2_CBORE_D / 2, CBORE_FOR_M5_SHCS1_ON_FACE_2_CBORE_DEPTH, depth=CBORE_FOR_M5_SHCS1_ON_FACE_2_DEPTH)

    # CBORE for M5 SHCS1 on face 3
    with Locations(Plane(origin=(0, 23, 26.5), x_dir=(1, 0, 0), z_dir=(0, 0, 1))):
        with Locations((0, 0)):
            CounterBoreHole(CBORE_FOR_M5_SHCS1_ON_FACE_3_D / 2, CBORE_FOR_M5_SHCS1_ON_FACE_3_CBORE_D / 2, CBORE_FOR_M5_SHCS1_ON_FACE_3_CBORE_DEPTH, depth=CBORE_FOR_M5_SHCS1_ON_FACE_3_DEPTH)

    # Cut-Extrude5: read off the stored shape, not the designer's step
    # Cut-Extrude5 outline → Cut-Extrude5 (cut)
    with BuildSketch(Plane.XY.offset(CUT_EXTRUDE5_START)):
        Polygon((14.174337148, 0), (26.5, 0), (26.5, 46), align=None)
    extrude(amount=CUT_EXTRUDE5_DEPTH, mode=Mode.SUBTRACT)


solid = part.part
